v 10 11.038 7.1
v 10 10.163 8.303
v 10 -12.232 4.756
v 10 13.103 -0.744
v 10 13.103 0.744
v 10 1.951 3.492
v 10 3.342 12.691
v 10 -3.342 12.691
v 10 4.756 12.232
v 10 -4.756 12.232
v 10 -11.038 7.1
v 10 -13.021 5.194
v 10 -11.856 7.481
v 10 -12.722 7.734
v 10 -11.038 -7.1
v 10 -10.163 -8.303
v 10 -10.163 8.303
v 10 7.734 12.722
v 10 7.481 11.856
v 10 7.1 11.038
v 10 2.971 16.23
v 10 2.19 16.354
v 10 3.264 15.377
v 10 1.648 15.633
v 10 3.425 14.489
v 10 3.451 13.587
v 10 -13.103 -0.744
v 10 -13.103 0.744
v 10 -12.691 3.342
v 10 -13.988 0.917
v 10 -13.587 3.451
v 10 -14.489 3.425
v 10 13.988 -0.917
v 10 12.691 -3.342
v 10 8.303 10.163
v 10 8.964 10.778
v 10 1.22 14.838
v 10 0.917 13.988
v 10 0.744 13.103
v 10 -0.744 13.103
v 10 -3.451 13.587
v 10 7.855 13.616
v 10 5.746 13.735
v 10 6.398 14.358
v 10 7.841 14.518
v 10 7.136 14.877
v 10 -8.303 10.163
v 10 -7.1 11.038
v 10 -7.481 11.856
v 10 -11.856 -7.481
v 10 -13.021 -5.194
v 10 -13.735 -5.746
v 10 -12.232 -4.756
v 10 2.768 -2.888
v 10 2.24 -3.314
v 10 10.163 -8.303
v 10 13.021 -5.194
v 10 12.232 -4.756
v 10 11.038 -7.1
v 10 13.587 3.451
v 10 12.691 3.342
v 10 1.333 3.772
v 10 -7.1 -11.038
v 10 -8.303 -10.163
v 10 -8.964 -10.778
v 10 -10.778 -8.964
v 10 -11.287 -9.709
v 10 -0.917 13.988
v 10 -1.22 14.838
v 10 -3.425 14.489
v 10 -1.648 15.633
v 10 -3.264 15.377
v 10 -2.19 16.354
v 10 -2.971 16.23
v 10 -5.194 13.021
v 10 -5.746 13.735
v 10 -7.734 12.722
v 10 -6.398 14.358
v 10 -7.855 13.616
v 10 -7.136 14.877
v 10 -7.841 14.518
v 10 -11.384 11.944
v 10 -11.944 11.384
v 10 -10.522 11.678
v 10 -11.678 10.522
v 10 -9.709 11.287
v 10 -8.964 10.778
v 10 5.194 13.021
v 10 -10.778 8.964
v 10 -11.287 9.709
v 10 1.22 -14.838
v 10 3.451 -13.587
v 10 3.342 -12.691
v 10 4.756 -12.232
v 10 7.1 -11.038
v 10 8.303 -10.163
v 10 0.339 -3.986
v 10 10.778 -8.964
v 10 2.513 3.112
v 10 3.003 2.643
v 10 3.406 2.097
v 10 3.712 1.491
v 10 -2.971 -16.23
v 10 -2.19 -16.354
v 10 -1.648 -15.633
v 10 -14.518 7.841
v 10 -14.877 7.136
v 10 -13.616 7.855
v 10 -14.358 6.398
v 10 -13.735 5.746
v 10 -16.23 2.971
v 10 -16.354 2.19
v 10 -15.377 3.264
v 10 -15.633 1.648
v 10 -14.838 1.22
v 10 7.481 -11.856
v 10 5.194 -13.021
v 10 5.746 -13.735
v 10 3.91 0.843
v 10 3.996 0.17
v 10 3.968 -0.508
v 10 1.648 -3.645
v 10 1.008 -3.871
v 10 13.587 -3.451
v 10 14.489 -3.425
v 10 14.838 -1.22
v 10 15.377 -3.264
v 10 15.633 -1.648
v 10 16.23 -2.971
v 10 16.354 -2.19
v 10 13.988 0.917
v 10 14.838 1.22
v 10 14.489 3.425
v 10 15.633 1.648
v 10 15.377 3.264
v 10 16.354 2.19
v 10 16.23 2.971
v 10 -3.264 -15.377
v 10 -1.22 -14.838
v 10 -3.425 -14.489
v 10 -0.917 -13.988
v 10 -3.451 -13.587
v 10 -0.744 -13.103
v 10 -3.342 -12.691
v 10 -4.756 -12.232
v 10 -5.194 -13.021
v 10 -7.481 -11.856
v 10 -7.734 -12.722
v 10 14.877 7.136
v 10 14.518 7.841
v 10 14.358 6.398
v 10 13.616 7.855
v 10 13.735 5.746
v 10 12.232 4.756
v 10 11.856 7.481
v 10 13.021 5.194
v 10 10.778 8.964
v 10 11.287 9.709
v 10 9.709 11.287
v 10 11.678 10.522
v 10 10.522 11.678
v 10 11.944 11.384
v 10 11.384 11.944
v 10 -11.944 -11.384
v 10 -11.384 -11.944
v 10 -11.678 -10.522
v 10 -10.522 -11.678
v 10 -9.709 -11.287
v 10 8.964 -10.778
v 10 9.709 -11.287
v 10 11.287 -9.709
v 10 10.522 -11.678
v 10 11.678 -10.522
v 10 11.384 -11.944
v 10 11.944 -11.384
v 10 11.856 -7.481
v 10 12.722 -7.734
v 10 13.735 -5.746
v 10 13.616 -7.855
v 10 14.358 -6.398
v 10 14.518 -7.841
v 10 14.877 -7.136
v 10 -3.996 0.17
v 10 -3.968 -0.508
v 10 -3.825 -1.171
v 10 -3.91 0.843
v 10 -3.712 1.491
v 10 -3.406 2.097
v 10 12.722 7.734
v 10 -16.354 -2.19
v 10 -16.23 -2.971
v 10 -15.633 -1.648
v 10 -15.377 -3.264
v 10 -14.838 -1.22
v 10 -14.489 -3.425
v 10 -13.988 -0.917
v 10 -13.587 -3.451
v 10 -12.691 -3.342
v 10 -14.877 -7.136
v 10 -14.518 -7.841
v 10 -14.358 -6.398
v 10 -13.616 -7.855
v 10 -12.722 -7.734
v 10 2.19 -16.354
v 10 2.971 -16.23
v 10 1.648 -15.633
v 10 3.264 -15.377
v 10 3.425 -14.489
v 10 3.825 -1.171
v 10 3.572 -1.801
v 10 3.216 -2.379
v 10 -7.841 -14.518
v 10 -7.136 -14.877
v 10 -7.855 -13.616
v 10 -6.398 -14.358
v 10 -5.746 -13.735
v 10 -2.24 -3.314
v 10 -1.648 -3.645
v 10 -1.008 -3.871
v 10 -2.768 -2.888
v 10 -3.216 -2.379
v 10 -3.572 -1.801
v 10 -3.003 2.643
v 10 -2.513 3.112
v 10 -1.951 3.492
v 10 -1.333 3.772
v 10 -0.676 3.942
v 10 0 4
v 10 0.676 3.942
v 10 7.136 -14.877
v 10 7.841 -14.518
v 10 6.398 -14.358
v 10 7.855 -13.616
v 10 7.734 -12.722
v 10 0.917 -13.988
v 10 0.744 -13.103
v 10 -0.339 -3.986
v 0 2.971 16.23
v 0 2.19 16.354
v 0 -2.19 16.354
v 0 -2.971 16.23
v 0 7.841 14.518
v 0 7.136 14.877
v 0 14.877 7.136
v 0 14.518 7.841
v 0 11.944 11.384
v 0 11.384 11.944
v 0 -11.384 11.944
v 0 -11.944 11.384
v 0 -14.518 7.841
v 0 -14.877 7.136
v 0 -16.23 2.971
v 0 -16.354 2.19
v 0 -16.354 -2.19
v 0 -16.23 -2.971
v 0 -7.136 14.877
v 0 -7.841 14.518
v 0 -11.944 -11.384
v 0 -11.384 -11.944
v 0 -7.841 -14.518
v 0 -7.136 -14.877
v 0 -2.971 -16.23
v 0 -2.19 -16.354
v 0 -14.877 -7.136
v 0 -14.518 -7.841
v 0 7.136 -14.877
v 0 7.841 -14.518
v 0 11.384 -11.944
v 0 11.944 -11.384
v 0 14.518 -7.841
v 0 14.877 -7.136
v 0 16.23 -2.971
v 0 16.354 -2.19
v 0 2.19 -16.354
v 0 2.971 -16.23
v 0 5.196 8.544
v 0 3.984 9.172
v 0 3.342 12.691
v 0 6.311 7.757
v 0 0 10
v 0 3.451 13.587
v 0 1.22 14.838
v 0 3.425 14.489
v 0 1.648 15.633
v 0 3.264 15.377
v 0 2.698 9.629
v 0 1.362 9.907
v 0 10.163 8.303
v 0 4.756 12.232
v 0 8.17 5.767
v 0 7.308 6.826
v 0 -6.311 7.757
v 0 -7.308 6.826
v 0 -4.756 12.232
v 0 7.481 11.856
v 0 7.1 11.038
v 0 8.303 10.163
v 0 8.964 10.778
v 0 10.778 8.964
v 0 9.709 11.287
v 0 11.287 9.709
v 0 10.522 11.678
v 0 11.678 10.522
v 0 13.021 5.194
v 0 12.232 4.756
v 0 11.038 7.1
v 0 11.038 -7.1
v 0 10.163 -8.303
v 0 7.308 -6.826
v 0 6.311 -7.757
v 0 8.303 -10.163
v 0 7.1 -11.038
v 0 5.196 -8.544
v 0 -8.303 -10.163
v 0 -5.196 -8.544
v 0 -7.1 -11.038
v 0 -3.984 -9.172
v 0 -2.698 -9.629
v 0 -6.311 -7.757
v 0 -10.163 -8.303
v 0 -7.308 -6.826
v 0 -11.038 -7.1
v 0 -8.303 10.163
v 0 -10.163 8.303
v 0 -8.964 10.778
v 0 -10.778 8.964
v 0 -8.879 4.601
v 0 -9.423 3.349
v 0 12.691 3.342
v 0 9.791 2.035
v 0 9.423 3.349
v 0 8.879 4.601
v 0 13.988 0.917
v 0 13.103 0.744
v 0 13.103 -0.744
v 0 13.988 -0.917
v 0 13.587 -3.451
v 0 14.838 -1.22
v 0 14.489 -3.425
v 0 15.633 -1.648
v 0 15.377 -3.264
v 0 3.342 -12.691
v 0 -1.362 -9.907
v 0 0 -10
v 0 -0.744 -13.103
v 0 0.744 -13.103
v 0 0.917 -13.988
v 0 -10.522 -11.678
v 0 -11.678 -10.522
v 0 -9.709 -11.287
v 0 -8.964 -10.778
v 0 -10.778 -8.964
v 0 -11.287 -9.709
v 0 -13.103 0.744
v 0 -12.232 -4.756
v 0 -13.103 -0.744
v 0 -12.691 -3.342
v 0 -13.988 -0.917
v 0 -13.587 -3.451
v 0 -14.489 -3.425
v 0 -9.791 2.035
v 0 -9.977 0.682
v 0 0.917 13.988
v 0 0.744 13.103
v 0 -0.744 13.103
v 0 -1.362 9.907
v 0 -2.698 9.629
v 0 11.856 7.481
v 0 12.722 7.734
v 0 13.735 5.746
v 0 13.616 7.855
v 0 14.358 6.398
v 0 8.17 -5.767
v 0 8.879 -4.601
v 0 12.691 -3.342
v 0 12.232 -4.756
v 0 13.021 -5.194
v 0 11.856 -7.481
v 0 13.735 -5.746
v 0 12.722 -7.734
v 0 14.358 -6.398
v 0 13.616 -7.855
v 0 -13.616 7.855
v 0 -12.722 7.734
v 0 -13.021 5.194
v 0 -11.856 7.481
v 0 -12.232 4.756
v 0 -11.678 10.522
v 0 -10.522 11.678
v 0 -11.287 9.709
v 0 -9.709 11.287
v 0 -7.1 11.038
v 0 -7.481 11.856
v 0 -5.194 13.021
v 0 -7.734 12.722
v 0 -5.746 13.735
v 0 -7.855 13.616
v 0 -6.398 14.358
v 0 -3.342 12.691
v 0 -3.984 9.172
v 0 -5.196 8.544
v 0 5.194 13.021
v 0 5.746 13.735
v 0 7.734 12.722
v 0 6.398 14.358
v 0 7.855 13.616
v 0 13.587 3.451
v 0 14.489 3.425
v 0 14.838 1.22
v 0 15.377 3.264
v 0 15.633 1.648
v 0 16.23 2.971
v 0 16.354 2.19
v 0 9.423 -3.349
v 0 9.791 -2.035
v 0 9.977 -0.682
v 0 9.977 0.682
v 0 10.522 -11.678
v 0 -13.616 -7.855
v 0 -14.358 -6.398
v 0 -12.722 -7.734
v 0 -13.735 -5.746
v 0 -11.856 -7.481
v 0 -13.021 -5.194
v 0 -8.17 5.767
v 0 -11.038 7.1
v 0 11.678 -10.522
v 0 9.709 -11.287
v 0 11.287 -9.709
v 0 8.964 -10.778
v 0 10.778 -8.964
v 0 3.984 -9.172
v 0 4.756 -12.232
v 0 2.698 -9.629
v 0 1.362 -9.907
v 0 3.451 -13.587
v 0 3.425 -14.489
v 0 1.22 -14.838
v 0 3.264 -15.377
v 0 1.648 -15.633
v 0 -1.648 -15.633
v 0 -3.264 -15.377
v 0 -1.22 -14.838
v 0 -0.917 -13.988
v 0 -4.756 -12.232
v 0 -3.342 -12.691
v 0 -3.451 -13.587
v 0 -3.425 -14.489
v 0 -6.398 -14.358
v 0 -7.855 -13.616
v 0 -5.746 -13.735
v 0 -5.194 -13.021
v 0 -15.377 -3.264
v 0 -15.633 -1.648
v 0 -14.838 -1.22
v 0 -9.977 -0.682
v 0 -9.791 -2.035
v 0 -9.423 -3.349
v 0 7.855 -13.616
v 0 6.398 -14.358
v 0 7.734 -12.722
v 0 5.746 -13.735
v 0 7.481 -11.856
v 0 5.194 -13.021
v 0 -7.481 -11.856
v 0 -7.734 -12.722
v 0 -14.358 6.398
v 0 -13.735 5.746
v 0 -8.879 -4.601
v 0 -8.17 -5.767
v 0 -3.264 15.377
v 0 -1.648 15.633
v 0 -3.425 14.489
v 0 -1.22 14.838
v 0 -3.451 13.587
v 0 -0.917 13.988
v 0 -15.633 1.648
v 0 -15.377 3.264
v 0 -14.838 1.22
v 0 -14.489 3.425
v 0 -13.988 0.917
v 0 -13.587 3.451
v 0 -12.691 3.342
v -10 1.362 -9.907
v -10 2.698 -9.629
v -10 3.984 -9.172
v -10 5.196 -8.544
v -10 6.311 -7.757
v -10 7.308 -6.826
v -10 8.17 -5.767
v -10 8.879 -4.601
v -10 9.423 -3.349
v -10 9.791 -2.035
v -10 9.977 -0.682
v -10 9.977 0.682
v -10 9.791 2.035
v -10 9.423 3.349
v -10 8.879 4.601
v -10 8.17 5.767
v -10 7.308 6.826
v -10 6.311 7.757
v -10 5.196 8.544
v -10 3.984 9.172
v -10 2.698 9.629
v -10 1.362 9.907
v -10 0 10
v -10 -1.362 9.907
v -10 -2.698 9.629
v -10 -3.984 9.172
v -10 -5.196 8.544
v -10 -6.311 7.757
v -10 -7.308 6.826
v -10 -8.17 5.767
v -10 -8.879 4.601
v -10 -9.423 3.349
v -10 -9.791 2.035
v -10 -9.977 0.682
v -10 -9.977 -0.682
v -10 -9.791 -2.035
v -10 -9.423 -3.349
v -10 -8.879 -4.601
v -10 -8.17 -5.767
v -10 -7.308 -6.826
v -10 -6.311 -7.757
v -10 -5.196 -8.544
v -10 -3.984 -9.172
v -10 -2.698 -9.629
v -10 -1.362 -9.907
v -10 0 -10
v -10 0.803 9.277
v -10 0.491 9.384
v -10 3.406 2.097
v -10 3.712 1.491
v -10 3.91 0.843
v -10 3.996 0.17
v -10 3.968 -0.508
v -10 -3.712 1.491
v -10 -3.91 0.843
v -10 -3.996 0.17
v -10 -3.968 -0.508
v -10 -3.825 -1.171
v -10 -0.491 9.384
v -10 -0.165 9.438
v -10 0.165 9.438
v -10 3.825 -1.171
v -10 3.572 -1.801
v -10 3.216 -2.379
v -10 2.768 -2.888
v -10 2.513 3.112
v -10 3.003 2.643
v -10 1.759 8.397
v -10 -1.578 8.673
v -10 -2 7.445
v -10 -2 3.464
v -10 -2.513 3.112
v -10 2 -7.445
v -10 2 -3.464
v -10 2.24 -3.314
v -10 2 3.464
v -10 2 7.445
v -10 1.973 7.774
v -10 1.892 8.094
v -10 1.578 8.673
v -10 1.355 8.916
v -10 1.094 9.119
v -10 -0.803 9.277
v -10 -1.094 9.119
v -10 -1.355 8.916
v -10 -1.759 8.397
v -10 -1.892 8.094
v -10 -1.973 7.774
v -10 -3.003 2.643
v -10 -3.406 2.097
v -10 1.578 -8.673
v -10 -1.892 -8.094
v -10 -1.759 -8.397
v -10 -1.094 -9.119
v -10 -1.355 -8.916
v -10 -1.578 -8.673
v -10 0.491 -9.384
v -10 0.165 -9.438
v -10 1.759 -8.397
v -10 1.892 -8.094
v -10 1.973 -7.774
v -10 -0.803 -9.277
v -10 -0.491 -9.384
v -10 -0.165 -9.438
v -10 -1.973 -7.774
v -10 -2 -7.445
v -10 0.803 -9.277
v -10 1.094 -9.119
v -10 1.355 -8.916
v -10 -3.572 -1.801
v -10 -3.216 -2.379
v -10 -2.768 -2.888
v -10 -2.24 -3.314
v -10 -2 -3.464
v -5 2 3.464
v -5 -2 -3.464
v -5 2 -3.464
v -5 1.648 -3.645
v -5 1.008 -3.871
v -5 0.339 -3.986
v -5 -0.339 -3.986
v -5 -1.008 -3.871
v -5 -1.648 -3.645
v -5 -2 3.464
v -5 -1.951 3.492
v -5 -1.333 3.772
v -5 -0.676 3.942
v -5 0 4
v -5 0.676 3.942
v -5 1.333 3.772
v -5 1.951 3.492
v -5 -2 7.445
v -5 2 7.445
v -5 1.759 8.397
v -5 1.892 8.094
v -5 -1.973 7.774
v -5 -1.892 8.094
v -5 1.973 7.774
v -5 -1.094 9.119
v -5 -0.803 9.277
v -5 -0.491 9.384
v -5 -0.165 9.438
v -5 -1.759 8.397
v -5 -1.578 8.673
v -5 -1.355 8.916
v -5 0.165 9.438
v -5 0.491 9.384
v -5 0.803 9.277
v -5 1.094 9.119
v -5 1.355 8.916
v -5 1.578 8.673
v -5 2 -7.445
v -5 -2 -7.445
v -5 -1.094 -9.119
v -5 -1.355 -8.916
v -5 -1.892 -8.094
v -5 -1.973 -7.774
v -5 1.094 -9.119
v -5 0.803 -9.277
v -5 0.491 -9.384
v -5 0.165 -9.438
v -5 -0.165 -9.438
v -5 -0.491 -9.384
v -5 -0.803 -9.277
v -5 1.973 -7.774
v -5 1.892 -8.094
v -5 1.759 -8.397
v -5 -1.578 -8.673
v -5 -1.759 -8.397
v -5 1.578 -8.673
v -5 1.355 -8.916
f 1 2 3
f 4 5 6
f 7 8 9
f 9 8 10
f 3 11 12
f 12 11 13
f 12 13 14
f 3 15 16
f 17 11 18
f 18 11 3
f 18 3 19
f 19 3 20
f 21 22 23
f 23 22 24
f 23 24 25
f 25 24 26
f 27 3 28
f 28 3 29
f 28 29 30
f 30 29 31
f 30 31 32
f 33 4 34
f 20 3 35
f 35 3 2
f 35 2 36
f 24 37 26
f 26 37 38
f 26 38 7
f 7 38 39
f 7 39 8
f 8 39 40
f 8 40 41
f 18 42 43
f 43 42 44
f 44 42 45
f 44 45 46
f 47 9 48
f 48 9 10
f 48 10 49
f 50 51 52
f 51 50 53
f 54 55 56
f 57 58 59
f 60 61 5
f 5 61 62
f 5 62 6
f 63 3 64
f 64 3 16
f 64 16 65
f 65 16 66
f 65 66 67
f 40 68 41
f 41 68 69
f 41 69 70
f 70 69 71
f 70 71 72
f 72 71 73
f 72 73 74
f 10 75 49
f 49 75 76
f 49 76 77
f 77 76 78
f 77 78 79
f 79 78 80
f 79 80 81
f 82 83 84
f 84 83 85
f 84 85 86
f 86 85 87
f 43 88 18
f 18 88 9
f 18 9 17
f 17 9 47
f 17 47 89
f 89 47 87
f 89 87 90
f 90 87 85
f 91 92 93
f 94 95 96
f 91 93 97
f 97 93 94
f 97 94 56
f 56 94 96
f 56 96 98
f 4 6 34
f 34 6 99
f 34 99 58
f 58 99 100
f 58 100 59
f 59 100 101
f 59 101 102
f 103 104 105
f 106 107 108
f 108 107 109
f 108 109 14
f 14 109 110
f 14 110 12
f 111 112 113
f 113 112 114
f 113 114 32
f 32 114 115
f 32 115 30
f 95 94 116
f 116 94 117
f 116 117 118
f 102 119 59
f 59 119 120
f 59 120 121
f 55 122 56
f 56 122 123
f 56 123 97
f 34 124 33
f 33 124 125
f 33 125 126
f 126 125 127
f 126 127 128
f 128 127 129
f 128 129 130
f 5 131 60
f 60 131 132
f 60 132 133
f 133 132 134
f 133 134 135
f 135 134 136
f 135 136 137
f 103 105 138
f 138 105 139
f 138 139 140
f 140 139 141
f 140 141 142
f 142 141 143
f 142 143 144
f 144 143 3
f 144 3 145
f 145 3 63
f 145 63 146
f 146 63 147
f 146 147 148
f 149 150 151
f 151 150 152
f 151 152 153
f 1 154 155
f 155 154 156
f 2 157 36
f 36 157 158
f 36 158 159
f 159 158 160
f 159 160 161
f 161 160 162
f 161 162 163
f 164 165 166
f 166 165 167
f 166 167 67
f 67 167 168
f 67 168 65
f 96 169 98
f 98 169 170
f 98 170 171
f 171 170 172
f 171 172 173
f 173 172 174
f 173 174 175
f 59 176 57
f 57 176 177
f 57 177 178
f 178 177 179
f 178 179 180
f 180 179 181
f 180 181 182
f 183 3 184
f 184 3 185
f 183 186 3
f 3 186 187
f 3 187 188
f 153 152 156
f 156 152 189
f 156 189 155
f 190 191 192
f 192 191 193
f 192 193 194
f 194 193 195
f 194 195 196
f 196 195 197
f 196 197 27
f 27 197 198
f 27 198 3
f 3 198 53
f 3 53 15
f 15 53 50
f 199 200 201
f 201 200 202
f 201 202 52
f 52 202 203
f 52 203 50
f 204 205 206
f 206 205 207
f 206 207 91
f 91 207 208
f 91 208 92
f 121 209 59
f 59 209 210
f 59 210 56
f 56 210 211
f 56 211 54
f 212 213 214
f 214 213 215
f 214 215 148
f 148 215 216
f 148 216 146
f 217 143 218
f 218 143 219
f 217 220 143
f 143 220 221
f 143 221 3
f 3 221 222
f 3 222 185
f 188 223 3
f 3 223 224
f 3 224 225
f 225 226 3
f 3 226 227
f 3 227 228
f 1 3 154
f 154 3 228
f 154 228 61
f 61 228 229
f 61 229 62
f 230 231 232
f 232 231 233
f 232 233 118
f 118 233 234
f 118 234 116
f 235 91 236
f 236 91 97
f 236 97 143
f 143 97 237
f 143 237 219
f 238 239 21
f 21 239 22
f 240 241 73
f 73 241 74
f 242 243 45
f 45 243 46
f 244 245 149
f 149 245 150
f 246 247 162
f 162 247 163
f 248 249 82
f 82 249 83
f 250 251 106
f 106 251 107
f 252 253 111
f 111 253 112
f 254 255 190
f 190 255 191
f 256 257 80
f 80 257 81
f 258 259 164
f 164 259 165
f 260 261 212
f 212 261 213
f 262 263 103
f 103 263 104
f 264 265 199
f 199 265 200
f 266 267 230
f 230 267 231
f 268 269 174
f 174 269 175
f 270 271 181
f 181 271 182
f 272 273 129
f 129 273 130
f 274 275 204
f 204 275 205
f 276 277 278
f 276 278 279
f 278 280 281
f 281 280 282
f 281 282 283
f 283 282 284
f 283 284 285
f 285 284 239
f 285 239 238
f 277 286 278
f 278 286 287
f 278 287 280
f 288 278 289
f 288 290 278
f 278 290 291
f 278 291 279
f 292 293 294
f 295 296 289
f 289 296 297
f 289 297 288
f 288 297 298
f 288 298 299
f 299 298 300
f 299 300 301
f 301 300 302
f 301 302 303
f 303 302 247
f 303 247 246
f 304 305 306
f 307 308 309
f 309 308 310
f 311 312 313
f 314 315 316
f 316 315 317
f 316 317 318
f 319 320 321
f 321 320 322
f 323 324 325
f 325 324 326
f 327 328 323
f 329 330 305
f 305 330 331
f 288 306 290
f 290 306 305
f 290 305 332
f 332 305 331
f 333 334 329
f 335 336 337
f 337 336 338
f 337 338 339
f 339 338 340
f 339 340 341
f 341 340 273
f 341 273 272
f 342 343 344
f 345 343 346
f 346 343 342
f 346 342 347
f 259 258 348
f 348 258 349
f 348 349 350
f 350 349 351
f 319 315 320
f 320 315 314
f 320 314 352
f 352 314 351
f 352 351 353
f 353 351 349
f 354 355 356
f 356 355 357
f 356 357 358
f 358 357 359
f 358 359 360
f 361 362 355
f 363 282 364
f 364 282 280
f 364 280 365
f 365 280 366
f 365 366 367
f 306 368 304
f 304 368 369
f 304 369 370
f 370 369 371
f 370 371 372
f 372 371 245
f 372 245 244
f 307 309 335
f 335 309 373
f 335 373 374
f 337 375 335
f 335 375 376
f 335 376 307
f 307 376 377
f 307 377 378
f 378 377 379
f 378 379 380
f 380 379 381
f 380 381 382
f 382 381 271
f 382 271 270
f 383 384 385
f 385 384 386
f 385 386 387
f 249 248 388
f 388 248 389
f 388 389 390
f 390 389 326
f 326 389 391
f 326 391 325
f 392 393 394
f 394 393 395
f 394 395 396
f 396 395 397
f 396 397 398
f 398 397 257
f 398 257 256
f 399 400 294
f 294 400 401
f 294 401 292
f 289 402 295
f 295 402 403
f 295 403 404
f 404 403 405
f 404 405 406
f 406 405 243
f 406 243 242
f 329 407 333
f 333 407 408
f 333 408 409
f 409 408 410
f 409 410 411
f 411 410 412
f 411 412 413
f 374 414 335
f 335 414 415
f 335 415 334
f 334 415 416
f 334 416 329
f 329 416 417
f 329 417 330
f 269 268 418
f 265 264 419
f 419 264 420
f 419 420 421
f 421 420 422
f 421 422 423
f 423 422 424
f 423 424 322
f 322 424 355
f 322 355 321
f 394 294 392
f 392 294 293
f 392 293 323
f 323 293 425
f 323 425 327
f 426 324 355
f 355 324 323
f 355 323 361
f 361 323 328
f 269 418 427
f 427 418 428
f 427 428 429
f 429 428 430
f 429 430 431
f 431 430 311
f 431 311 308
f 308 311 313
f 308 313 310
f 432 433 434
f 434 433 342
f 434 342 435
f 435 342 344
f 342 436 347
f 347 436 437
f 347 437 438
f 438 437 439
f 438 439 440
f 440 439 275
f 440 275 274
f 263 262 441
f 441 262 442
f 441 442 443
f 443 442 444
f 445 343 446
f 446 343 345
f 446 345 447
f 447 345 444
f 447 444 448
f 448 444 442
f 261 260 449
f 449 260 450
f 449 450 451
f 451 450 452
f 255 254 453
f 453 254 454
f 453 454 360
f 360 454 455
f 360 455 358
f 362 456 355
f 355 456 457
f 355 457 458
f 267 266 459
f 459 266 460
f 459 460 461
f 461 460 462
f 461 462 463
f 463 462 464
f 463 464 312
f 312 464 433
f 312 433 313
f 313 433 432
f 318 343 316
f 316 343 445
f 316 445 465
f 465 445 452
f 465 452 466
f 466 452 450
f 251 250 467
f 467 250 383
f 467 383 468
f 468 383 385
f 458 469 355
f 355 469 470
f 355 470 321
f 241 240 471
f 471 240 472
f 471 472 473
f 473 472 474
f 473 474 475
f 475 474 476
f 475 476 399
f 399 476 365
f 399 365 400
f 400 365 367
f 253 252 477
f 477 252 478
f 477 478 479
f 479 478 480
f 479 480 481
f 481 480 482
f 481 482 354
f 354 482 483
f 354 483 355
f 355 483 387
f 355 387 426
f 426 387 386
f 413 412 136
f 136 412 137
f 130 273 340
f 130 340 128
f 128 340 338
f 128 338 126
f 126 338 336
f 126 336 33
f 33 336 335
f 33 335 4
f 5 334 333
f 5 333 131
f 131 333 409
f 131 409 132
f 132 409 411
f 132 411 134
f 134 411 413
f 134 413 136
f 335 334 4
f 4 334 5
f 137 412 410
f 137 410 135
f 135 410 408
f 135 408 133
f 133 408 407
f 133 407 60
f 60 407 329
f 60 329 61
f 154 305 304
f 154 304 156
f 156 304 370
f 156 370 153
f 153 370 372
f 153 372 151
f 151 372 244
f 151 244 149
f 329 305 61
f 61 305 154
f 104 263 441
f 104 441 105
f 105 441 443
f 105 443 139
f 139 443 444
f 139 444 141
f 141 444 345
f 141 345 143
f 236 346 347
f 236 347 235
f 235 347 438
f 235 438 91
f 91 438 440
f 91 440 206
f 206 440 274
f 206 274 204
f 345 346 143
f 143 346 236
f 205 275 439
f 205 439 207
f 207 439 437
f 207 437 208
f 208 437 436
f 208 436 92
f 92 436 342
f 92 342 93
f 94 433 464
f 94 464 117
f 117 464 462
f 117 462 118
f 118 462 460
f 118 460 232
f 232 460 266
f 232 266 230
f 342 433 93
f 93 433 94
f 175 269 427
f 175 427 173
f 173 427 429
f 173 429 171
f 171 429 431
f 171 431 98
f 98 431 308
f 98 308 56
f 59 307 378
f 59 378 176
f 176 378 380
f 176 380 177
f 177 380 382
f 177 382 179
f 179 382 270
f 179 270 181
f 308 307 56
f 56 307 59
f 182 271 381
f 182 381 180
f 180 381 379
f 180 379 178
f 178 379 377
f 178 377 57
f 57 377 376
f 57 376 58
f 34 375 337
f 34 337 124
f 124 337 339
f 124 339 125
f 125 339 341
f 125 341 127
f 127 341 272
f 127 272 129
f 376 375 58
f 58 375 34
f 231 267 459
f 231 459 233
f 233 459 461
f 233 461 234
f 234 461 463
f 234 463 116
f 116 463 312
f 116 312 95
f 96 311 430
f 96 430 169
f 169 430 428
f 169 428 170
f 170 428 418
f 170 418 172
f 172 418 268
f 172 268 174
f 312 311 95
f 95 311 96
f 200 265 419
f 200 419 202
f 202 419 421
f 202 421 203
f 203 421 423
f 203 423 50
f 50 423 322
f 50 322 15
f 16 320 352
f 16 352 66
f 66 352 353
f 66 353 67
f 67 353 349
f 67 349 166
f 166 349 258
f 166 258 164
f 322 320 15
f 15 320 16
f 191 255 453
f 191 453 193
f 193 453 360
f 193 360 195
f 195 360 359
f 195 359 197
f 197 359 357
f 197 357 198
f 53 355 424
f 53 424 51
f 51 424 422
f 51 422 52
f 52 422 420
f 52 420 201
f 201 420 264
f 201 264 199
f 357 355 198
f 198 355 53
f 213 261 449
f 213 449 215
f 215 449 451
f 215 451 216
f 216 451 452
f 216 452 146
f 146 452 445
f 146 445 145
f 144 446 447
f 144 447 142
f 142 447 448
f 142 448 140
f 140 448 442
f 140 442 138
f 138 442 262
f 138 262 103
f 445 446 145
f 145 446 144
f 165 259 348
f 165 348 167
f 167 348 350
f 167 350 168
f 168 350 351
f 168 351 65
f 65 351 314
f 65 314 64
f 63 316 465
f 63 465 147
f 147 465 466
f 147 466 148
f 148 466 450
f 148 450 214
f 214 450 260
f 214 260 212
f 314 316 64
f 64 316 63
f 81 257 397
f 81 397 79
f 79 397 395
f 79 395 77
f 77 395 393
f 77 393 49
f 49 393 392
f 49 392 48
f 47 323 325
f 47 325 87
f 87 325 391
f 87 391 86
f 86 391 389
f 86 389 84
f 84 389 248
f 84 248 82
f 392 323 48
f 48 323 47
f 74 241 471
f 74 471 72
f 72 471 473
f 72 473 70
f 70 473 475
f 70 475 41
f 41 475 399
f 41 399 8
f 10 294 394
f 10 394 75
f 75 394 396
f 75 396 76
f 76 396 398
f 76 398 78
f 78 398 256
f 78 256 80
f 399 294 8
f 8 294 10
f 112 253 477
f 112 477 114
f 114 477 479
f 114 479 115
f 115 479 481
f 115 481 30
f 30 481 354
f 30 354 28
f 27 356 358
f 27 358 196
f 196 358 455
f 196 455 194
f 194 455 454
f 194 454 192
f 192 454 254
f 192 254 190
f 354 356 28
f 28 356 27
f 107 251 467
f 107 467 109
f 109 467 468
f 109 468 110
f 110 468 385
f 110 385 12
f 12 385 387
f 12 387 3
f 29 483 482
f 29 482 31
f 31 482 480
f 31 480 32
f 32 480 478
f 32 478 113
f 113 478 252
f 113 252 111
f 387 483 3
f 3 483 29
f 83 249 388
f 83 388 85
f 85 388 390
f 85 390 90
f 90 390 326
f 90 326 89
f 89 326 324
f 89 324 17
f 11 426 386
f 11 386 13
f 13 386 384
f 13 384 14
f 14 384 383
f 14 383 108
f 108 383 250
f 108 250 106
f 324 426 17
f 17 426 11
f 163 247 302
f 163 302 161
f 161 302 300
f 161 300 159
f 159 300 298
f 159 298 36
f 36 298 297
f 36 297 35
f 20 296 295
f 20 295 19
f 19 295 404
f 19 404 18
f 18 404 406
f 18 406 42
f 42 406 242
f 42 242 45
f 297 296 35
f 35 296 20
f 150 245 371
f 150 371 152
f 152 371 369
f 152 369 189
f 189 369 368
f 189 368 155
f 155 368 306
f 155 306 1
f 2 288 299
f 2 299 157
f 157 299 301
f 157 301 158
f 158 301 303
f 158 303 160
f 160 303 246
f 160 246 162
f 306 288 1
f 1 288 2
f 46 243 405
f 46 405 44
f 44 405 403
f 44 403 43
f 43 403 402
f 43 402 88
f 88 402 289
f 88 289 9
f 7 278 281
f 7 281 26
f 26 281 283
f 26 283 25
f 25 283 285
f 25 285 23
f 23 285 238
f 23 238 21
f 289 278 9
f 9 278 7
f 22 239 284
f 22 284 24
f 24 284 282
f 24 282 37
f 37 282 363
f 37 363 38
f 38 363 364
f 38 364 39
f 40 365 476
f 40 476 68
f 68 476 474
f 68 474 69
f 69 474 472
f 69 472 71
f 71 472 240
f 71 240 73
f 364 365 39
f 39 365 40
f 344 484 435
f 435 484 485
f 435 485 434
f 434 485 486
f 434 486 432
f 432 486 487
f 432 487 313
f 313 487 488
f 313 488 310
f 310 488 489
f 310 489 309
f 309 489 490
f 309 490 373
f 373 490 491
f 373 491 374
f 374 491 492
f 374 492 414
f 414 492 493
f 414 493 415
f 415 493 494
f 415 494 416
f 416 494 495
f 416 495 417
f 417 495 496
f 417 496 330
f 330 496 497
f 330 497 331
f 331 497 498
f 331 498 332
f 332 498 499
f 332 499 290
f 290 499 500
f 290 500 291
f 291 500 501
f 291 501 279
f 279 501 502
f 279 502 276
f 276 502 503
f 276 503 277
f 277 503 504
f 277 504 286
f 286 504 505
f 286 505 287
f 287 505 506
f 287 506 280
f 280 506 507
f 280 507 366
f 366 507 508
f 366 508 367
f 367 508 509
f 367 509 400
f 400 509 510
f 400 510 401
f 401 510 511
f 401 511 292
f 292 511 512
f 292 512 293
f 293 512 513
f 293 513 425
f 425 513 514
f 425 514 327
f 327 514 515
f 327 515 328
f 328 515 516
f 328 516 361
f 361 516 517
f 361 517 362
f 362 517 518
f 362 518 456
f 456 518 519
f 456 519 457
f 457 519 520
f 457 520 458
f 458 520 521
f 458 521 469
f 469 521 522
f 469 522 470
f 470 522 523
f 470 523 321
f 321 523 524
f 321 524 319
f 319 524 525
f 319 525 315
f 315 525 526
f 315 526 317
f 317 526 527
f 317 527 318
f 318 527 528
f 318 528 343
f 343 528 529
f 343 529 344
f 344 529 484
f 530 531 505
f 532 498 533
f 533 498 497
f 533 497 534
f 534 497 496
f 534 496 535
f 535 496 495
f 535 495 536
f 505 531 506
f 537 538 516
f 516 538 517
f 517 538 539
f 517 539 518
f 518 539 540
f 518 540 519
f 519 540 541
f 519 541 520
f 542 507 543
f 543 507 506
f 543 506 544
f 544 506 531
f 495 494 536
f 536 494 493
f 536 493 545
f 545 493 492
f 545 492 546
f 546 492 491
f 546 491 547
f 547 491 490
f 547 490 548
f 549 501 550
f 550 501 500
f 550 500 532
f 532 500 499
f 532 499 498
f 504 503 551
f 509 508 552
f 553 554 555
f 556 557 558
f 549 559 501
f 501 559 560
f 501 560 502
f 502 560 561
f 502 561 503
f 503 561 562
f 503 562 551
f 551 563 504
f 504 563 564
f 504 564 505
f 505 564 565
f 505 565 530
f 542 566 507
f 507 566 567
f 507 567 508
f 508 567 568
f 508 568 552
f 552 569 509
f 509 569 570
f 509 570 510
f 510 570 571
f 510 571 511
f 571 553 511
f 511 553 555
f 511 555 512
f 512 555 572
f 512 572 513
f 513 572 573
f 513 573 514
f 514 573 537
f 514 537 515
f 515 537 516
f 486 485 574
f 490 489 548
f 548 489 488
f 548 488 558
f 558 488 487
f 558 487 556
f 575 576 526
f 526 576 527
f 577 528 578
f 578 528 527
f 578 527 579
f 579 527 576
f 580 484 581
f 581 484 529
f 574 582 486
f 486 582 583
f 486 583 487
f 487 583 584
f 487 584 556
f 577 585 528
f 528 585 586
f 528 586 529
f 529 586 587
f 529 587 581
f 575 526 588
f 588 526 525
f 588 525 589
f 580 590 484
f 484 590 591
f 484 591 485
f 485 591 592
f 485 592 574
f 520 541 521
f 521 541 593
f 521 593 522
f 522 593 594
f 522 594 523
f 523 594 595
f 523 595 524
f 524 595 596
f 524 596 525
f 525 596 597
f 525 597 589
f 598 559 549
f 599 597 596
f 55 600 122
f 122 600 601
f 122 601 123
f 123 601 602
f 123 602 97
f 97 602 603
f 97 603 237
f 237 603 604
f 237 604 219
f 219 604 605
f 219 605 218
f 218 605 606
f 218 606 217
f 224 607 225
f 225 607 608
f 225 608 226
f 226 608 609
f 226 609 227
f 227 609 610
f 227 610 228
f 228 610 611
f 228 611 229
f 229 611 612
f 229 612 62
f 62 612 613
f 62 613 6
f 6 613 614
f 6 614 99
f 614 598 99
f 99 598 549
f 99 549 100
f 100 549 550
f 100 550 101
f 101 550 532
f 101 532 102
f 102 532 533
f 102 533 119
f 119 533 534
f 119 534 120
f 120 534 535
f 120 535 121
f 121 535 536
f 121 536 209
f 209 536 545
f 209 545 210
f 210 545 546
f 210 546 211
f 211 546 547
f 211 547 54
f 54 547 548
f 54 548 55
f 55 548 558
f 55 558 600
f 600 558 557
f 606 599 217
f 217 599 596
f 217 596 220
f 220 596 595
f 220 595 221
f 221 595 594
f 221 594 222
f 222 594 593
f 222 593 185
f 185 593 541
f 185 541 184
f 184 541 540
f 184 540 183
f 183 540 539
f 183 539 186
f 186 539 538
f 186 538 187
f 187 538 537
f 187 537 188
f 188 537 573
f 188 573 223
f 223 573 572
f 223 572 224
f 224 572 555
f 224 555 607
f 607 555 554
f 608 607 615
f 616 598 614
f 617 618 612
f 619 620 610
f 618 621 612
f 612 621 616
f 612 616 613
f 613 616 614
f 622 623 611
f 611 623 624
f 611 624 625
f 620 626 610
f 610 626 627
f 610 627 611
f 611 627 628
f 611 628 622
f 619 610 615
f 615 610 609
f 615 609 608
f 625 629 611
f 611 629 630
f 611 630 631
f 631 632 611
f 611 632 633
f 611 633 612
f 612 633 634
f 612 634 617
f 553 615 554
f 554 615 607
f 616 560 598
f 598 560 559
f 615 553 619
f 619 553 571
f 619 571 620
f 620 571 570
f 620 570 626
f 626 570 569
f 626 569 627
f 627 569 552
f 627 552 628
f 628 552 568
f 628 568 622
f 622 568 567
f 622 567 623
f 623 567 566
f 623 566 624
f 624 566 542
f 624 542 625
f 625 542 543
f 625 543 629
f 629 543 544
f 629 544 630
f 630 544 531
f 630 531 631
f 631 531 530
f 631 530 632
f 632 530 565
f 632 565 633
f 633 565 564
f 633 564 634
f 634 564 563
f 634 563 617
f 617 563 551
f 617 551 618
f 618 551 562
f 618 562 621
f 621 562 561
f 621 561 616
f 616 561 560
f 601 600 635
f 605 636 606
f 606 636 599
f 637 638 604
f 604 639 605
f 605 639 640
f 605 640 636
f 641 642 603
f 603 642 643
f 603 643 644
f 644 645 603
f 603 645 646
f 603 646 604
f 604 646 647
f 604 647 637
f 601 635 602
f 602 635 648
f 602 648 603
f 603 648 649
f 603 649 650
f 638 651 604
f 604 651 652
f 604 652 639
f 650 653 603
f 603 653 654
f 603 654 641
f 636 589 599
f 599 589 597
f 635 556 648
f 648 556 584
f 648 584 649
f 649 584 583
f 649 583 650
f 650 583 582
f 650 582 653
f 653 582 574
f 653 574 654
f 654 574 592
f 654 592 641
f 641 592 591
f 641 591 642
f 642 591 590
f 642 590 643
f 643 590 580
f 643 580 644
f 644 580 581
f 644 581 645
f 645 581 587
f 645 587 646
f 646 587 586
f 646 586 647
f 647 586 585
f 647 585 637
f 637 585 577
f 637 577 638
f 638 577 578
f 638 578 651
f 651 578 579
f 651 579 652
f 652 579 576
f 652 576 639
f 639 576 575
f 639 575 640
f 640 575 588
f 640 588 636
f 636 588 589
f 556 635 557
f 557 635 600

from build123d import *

# Parameters (mm, degrees)
BASPROSKE_W        = 10
BASPROSKE_H        = 16.5
TOOTHCUT_DEPTH     = 26.38700455
TEETHCUTS_COUNT    = 20
TEETHCUTS_ANGLE    = 342
HUBNEAONESKE_R     = 10
HUBNEARONE_DEPTH   = 10.0000508
BORSKE_R           = 4
BORE_DEPTH         = 20.0000508
CUT_EXTRUDE1_DEPTH = 5


with BuildPart() as part:
    # BasProSke → Base-Revolve (revolve)
    with BuildSketch(Plane(origin=(0, 0, 0), x_dir=(1, 0, 0), z_dir=(0, 1, 0)), mode=Mode.PRIVATE) as base_revolve_sk:
        with Locations((5, 8.25)):
            Rectangle(BASPROSKE_W, BASPROSKE_H)
    revolve(base_revolve_sk.sketch.rotate(Axis((-10, 0, 0), (1, 0, 0)), 180), axis=Axis((-10, 0, 0), (1, 0, 0)))

    # TooCutSke → ToothCut (cut, through all)
    with BuildSketch(Plane(origin=(0, 0, 0), x_dir=(0, 0, -1), z_dir=(1, 0, 0))):
        with BuildLine():
            ThreePointArc((0.74381438, 13.102904875), (0, 13.124), (-0.74381438, 13.102904875))
            ThreePointArc((-0.74381438, 13.102904875), (-1.226473103, 14.852072512), (-2.209965745, 16.376962373))
            ThreePointArc((-2.209965745, 16.376962373), (0, 16.5254), (2.209965745, 16.376962373))
            ThreePointArc((2.209965745, 16.376962373), (1.226473103, 14.852072512), (0.74381438, 13.102904875))
        make_face()
    toothcut = extrude(amount=TOOTHCUT_DEPTH, mode=Mode.SUBTRACT)

    # TeethCuts: ToothCut ×20 about axis
    teethcuts_axis = Axis((-10, 0, 0), (1, 0, 0))
    for i in range(1, TEETHCUTS_COUNT):
        add(toothcut.rotate(teethcuts_axis, i * TEETHCUTS_ANGLE / (TEETHCUTS_COUNT - 1)), mode=Mode.SUBTRACT)

    # HubNeaOneSke → HubNearOne (add)
    with BuildSketch(Plane.ZY):
        with Locations(Location((0, 0, 0), (0, 0, 180))):
            Circle(HUBNEAONESKE_R)
    extrude(amount=HUBNEARONE_DEPTH)

    # BorSke → Bore (cut, symmetric)
    with BuildSketch(Plane(origin=(0, 0, 0), x_dir=(0, 0, -1), z_dir=(1, 0, 0))):
        with Locations(Location((0, 0, 0), (0, 0, 180))):
            Circle(BORSKE_R)
    extrude(amount=BORE_DEPTH, both=True, mode=Mode.SUBTRACT)

    # Sketch2 → Cut-Extrude1 (cut)
    with BuildSketch(Plane.ZY.offset(10.0000508)):
        with BuildLine():
            Line((3.12475599, -2), (7.445, -2))
            ThreePointArc((7.445, -2), (9.445, 0), (7.445, 2))
            Line((7.445, 2), (3.12475599, 2))
            ThreePointArc((3.12475599, 2), (0, 3.71), (-3.12475599, 2))
            Line((-3.12475599, 2), (-7.445, 2))
            ThreePointArc((-7.445, 2), (-9.445, 0), (-7.445, -2))
            Line((-7.445, -2), (-3.12475599, -2))
            ThreePointArc((-3.12475599, -2), (0, -3.71), (3.12475599, -2))
        make_face()
    extrude(amount=-CUT_EXTRUDE1_DEPTH, mode=Mode.SUBTRACT)


solid = part.part
